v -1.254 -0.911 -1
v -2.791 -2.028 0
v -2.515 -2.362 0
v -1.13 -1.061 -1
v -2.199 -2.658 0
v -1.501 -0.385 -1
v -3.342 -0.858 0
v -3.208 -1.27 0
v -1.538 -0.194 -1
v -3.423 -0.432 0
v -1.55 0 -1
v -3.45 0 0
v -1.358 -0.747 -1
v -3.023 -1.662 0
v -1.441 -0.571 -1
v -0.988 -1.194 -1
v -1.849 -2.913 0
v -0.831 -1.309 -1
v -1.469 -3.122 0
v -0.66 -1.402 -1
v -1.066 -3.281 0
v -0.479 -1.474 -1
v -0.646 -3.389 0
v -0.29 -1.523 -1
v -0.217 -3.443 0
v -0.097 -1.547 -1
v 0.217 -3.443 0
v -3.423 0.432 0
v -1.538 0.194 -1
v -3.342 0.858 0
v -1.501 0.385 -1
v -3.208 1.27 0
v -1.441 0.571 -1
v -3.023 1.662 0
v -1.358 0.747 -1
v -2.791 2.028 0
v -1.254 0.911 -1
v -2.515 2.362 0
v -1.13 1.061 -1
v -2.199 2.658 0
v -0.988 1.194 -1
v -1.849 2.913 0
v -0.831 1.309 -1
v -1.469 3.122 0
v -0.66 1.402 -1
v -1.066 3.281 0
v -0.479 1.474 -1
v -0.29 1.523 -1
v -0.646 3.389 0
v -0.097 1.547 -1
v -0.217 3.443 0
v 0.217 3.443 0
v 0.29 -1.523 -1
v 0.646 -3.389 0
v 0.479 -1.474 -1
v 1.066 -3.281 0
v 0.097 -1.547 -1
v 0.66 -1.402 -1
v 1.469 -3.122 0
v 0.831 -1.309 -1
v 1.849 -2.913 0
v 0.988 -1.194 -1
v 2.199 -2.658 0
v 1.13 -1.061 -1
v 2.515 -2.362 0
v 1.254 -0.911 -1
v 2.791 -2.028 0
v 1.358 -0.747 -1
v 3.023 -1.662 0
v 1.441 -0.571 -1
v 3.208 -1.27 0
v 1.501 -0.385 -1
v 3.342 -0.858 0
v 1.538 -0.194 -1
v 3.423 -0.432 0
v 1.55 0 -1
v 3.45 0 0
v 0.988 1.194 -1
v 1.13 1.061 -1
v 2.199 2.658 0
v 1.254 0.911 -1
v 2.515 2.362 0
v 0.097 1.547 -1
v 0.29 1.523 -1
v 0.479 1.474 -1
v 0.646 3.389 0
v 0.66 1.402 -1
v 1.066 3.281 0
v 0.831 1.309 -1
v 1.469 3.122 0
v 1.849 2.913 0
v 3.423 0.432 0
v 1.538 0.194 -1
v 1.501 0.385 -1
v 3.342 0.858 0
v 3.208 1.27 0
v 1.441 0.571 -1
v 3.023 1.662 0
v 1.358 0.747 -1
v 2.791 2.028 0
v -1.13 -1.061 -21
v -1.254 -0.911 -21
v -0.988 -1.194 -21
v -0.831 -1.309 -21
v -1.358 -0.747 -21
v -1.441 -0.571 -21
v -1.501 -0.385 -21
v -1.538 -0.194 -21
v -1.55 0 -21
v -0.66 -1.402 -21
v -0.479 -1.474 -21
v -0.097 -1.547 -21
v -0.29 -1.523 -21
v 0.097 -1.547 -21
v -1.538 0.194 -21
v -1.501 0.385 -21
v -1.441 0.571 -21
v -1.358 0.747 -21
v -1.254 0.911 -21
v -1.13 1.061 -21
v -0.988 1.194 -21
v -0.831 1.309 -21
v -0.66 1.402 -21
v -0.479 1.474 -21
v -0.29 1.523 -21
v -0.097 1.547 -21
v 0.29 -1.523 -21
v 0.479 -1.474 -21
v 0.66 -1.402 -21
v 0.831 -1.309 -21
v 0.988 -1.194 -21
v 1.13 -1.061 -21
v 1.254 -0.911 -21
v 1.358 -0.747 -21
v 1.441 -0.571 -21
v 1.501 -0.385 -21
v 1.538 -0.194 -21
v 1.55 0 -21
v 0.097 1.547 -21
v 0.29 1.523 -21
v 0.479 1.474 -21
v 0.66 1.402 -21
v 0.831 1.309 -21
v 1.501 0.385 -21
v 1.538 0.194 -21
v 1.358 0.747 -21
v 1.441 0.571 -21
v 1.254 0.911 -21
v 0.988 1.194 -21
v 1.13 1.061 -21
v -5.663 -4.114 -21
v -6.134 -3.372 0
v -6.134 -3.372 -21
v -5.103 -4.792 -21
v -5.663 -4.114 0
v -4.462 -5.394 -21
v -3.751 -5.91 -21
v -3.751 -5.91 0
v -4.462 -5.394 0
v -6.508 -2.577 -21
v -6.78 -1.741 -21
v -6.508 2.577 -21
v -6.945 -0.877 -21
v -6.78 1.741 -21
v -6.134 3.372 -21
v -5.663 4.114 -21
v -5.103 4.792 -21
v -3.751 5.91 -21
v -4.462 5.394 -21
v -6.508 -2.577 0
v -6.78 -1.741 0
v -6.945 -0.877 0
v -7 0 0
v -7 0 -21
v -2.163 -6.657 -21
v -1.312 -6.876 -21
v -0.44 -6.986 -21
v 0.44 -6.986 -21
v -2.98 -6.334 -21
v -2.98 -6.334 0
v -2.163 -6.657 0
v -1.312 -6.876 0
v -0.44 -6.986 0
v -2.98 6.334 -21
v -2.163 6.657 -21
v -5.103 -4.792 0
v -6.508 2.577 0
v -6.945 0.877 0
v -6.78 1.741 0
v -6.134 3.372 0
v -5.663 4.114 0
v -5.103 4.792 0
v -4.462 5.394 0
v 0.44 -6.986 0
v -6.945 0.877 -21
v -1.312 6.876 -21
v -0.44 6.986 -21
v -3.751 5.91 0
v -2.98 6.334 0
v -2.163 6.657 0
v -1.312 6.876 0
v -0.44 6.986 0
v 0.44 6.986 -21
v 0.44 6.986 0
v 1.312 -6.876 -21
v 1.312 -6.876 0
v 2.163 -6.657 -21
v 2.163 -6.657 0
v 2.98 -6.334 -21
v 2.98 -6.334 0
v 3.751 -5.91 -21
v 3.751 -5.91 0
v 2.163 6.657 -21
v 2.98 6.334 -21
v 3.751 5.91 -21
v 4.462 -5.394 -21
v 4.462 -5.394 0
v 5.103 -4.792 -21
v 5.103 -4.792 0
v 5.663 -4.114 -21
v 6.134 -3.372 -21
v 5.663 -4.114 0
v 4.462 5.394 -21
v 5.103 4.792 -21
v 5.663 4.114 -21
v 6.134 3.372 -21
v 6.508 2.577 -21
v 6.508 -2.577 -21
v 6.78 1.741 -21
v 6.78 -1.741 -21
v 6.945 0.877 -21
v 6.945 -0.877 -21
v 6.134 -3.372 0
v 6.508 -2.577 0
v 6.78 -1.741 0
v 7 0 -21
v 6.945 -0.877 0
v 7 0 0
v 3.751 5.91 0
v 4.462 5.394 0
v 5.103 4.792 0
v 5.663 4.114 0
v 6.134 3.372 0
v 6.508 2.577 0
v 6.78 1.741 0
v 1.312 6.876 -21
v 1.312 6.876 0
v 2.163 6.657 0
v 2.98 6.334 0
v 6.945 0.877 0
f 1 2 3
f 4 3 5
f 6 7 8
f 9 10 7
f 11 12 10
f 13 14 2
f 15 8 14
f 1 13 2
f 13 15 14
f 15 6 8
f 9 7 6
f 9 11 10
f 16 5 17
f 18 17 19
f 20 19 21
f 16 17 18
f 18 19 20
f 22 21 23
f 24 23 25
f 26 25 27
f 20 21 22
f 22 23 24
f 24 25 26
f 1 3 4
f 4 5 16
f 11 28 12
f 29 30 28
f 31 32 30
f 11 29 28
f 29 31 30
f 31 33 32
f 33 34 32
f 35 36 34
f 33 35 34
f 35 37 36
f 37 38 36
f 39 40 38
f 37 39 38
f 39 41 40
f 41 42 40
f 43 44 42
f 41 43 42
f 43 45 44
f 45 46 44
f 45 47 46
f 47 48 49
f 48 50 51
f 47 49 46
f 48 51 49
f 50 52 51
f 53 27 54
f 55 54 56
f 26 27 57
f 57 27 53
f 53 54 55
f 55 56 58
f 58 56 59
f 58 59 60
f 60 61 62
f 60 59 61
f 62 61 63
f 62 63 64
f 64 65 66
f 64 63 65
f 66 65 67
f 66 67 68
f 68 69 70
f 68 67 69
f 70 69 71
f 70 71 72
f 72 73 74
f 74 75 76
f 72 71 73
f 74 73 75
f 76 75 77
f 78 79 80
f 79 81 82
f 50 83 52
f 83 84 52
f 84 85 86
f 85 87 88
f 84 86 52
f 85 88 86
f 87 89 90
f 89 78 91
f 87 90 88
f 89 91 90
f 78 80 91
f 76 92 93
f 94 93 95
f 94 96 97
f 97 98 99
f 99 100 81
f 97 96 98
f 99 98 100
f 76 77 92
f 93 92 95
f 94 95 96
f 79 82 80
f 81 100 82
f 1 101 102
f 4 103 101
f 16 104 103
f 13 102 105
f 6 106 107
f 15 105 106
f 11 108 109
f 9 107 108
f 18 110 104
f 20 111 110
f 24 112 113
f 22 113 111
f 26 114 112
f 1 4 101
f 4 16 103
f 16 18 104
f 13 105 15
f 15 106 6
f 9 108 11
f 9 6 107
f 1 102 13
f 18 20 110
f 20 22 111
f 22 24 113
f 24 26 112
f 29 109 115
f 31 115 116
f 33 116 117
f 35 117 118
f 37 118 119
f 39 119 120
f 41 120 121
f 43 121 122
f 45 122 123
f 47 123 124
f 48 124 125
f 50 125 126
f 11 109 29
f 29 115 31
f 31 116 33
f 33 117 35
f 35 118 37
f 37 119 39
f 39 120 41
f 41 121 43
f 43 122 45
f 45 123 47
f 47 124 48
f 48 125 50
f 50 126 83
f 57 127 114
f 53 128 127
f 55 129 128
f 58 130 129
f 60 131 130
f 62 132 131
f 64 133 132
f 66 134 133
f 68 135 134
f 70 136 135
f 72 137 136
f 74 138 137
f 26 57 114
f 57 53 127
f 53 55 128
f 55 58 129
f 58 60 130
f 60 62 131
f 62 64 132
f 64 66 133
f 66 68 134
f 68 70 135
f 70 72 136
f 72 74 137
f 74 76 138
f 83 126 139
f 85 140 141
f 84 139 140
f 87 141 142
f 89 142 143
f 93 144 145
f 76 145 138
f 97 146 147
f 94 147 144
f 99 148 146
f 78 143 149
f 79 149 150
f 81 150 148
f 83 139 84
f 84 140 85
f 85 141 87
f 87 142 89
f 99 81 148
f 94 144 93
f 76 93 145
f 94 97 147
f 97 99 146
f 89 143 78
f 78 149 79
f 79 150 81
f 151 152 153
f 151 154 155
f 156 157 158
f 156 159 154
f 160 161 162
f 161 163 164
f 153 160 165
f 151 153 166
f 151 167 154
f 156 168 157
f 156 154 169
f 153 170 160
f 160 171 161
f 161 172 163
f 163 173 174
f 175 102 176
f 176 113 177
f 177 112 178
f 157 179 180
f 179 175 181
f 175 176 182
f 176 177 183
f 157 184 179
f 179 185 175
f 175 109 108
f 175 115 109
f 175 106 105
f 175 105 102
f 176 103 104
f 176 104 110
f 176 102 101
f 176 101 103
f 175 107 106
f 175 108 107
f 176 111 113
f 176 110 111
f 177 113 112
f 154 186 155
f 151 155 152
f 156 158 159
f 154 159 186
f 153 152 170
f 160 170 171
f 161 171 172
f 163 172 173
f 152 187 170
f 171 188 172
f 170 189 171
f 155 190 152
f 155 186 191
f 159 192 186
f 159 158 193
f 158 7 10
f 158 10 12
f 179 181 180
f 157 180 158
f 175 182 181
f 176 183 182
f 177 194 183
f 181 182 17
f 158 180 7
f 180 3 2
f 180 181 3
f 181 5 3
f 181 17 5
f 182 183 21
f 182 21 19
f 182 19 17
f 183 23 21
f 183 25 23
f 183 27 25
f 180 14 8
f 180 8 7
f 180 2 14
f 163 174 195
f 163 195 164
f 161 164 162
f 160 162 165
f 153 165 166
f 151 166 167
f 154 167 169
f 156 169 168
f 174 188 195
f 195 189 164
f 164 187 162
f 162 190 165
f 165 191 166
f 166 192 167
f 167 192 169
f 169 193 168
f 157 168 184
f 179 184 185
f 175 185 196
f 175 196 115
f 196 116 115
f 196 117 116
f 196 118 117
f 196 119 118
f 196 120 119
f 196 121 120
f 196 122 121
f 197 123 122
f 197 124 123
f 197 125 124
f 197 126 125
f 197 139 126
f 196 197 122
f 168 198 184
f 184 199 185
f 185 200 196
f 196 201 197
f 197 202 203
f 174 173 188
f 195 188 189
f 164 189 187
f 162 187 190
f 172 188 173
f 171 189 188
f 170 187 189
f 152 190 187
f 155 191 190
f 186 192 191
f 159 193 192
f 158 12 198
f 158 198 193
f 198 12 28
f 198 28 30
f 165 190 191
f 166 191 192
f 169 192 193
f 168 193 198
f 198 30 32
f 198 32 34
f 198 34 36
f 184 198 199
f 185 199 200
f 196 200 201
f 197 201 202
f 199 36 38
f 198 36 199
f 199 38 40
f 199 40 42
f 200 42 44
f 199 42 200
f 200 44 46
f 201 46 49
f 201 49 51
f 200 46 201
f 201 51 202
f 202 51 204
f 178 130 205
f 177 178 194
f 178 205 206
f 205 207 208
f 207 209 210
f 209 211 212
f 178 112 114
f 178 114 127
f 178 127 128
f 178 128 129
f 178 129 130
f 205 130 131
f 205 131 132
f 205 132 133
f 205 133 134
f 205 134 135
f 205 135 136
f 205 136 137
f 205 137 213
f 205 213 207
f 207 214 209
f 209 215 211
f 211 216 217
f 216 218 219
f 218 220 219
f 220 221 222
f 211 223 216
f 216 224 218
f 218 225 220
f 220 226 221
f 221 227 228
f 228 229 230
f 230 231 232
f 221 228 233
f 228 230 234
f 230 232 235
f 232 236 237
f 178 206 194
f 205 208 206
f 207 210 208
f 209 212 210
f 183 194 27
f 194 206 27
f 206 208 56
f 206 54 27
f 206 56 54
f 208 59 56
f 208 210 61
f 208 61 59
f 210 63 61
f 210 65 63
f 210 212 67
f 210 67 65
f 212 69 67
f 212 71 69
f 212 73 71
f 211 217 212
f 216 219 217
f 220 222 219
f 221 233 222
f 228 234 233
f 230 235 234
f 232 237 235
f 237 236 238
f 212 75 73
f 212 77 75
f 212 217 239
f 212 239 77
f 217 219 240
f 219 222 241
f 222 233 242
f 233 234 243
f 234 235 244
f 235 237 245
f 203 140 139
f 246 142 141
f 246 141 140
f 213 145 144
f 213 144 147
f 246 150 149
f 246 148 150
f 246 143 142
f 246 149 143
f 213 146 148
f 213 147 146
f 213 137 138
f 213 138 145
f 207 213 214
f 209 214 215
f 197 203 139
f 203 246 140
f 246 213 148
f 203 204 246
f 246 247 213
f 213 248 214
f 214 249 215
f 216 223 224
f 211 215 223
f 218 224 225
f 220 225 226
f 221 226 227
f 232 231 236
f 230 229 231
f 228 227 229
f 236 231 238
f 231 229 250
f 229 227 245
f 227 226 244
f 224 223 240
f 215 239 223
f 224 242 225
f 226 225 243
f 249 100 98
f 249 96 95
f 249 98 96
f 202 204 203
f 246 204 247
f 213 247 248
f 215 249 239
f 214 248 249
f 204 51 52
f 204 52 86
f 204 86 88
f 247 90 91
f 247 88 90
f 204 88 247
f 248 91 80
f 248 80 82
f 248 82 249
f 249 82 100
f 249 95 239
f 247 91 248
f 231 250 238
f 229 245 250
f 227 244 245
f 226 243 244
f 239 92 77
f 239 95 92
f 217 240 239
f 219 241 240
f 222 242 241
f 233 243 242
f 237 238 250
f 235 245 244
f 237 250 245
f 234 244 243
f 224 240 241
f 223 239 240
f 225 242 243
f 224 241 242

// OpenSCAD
$fn = 50;


difference() {
	union() {
		translate(v = [0, 0, -21.0000000000]) {
			cylinder(h = 21, r = 7.0000000000);
		}
	}
	union() {
		translate(v = [0, 0, 0]) {
			rotate(a = [0, 0, 0]) {
				difference() {
					union() {
						translate(v = [0, 0, -24.0000000000]) {
							cylinder(h = 24, r = 1.2500000000);
						}
						translate(v = [0, 0, -1.0000000000]) {
							cylinder(h = 1.0000000000, r1 = 1.5500000000, r2 = 3.4500000000);
						}
						translate(v = [0, 0, -24.0000000000]) {
							cylinder(h = 24, r = 1.5500000000);
						}
						translate(v = [0, 0, -24.0000000000]) {
							cylinder(h = 24, r = 1.2500000000);
						}
					}
					union();
				}
			}
		}
	}
}
